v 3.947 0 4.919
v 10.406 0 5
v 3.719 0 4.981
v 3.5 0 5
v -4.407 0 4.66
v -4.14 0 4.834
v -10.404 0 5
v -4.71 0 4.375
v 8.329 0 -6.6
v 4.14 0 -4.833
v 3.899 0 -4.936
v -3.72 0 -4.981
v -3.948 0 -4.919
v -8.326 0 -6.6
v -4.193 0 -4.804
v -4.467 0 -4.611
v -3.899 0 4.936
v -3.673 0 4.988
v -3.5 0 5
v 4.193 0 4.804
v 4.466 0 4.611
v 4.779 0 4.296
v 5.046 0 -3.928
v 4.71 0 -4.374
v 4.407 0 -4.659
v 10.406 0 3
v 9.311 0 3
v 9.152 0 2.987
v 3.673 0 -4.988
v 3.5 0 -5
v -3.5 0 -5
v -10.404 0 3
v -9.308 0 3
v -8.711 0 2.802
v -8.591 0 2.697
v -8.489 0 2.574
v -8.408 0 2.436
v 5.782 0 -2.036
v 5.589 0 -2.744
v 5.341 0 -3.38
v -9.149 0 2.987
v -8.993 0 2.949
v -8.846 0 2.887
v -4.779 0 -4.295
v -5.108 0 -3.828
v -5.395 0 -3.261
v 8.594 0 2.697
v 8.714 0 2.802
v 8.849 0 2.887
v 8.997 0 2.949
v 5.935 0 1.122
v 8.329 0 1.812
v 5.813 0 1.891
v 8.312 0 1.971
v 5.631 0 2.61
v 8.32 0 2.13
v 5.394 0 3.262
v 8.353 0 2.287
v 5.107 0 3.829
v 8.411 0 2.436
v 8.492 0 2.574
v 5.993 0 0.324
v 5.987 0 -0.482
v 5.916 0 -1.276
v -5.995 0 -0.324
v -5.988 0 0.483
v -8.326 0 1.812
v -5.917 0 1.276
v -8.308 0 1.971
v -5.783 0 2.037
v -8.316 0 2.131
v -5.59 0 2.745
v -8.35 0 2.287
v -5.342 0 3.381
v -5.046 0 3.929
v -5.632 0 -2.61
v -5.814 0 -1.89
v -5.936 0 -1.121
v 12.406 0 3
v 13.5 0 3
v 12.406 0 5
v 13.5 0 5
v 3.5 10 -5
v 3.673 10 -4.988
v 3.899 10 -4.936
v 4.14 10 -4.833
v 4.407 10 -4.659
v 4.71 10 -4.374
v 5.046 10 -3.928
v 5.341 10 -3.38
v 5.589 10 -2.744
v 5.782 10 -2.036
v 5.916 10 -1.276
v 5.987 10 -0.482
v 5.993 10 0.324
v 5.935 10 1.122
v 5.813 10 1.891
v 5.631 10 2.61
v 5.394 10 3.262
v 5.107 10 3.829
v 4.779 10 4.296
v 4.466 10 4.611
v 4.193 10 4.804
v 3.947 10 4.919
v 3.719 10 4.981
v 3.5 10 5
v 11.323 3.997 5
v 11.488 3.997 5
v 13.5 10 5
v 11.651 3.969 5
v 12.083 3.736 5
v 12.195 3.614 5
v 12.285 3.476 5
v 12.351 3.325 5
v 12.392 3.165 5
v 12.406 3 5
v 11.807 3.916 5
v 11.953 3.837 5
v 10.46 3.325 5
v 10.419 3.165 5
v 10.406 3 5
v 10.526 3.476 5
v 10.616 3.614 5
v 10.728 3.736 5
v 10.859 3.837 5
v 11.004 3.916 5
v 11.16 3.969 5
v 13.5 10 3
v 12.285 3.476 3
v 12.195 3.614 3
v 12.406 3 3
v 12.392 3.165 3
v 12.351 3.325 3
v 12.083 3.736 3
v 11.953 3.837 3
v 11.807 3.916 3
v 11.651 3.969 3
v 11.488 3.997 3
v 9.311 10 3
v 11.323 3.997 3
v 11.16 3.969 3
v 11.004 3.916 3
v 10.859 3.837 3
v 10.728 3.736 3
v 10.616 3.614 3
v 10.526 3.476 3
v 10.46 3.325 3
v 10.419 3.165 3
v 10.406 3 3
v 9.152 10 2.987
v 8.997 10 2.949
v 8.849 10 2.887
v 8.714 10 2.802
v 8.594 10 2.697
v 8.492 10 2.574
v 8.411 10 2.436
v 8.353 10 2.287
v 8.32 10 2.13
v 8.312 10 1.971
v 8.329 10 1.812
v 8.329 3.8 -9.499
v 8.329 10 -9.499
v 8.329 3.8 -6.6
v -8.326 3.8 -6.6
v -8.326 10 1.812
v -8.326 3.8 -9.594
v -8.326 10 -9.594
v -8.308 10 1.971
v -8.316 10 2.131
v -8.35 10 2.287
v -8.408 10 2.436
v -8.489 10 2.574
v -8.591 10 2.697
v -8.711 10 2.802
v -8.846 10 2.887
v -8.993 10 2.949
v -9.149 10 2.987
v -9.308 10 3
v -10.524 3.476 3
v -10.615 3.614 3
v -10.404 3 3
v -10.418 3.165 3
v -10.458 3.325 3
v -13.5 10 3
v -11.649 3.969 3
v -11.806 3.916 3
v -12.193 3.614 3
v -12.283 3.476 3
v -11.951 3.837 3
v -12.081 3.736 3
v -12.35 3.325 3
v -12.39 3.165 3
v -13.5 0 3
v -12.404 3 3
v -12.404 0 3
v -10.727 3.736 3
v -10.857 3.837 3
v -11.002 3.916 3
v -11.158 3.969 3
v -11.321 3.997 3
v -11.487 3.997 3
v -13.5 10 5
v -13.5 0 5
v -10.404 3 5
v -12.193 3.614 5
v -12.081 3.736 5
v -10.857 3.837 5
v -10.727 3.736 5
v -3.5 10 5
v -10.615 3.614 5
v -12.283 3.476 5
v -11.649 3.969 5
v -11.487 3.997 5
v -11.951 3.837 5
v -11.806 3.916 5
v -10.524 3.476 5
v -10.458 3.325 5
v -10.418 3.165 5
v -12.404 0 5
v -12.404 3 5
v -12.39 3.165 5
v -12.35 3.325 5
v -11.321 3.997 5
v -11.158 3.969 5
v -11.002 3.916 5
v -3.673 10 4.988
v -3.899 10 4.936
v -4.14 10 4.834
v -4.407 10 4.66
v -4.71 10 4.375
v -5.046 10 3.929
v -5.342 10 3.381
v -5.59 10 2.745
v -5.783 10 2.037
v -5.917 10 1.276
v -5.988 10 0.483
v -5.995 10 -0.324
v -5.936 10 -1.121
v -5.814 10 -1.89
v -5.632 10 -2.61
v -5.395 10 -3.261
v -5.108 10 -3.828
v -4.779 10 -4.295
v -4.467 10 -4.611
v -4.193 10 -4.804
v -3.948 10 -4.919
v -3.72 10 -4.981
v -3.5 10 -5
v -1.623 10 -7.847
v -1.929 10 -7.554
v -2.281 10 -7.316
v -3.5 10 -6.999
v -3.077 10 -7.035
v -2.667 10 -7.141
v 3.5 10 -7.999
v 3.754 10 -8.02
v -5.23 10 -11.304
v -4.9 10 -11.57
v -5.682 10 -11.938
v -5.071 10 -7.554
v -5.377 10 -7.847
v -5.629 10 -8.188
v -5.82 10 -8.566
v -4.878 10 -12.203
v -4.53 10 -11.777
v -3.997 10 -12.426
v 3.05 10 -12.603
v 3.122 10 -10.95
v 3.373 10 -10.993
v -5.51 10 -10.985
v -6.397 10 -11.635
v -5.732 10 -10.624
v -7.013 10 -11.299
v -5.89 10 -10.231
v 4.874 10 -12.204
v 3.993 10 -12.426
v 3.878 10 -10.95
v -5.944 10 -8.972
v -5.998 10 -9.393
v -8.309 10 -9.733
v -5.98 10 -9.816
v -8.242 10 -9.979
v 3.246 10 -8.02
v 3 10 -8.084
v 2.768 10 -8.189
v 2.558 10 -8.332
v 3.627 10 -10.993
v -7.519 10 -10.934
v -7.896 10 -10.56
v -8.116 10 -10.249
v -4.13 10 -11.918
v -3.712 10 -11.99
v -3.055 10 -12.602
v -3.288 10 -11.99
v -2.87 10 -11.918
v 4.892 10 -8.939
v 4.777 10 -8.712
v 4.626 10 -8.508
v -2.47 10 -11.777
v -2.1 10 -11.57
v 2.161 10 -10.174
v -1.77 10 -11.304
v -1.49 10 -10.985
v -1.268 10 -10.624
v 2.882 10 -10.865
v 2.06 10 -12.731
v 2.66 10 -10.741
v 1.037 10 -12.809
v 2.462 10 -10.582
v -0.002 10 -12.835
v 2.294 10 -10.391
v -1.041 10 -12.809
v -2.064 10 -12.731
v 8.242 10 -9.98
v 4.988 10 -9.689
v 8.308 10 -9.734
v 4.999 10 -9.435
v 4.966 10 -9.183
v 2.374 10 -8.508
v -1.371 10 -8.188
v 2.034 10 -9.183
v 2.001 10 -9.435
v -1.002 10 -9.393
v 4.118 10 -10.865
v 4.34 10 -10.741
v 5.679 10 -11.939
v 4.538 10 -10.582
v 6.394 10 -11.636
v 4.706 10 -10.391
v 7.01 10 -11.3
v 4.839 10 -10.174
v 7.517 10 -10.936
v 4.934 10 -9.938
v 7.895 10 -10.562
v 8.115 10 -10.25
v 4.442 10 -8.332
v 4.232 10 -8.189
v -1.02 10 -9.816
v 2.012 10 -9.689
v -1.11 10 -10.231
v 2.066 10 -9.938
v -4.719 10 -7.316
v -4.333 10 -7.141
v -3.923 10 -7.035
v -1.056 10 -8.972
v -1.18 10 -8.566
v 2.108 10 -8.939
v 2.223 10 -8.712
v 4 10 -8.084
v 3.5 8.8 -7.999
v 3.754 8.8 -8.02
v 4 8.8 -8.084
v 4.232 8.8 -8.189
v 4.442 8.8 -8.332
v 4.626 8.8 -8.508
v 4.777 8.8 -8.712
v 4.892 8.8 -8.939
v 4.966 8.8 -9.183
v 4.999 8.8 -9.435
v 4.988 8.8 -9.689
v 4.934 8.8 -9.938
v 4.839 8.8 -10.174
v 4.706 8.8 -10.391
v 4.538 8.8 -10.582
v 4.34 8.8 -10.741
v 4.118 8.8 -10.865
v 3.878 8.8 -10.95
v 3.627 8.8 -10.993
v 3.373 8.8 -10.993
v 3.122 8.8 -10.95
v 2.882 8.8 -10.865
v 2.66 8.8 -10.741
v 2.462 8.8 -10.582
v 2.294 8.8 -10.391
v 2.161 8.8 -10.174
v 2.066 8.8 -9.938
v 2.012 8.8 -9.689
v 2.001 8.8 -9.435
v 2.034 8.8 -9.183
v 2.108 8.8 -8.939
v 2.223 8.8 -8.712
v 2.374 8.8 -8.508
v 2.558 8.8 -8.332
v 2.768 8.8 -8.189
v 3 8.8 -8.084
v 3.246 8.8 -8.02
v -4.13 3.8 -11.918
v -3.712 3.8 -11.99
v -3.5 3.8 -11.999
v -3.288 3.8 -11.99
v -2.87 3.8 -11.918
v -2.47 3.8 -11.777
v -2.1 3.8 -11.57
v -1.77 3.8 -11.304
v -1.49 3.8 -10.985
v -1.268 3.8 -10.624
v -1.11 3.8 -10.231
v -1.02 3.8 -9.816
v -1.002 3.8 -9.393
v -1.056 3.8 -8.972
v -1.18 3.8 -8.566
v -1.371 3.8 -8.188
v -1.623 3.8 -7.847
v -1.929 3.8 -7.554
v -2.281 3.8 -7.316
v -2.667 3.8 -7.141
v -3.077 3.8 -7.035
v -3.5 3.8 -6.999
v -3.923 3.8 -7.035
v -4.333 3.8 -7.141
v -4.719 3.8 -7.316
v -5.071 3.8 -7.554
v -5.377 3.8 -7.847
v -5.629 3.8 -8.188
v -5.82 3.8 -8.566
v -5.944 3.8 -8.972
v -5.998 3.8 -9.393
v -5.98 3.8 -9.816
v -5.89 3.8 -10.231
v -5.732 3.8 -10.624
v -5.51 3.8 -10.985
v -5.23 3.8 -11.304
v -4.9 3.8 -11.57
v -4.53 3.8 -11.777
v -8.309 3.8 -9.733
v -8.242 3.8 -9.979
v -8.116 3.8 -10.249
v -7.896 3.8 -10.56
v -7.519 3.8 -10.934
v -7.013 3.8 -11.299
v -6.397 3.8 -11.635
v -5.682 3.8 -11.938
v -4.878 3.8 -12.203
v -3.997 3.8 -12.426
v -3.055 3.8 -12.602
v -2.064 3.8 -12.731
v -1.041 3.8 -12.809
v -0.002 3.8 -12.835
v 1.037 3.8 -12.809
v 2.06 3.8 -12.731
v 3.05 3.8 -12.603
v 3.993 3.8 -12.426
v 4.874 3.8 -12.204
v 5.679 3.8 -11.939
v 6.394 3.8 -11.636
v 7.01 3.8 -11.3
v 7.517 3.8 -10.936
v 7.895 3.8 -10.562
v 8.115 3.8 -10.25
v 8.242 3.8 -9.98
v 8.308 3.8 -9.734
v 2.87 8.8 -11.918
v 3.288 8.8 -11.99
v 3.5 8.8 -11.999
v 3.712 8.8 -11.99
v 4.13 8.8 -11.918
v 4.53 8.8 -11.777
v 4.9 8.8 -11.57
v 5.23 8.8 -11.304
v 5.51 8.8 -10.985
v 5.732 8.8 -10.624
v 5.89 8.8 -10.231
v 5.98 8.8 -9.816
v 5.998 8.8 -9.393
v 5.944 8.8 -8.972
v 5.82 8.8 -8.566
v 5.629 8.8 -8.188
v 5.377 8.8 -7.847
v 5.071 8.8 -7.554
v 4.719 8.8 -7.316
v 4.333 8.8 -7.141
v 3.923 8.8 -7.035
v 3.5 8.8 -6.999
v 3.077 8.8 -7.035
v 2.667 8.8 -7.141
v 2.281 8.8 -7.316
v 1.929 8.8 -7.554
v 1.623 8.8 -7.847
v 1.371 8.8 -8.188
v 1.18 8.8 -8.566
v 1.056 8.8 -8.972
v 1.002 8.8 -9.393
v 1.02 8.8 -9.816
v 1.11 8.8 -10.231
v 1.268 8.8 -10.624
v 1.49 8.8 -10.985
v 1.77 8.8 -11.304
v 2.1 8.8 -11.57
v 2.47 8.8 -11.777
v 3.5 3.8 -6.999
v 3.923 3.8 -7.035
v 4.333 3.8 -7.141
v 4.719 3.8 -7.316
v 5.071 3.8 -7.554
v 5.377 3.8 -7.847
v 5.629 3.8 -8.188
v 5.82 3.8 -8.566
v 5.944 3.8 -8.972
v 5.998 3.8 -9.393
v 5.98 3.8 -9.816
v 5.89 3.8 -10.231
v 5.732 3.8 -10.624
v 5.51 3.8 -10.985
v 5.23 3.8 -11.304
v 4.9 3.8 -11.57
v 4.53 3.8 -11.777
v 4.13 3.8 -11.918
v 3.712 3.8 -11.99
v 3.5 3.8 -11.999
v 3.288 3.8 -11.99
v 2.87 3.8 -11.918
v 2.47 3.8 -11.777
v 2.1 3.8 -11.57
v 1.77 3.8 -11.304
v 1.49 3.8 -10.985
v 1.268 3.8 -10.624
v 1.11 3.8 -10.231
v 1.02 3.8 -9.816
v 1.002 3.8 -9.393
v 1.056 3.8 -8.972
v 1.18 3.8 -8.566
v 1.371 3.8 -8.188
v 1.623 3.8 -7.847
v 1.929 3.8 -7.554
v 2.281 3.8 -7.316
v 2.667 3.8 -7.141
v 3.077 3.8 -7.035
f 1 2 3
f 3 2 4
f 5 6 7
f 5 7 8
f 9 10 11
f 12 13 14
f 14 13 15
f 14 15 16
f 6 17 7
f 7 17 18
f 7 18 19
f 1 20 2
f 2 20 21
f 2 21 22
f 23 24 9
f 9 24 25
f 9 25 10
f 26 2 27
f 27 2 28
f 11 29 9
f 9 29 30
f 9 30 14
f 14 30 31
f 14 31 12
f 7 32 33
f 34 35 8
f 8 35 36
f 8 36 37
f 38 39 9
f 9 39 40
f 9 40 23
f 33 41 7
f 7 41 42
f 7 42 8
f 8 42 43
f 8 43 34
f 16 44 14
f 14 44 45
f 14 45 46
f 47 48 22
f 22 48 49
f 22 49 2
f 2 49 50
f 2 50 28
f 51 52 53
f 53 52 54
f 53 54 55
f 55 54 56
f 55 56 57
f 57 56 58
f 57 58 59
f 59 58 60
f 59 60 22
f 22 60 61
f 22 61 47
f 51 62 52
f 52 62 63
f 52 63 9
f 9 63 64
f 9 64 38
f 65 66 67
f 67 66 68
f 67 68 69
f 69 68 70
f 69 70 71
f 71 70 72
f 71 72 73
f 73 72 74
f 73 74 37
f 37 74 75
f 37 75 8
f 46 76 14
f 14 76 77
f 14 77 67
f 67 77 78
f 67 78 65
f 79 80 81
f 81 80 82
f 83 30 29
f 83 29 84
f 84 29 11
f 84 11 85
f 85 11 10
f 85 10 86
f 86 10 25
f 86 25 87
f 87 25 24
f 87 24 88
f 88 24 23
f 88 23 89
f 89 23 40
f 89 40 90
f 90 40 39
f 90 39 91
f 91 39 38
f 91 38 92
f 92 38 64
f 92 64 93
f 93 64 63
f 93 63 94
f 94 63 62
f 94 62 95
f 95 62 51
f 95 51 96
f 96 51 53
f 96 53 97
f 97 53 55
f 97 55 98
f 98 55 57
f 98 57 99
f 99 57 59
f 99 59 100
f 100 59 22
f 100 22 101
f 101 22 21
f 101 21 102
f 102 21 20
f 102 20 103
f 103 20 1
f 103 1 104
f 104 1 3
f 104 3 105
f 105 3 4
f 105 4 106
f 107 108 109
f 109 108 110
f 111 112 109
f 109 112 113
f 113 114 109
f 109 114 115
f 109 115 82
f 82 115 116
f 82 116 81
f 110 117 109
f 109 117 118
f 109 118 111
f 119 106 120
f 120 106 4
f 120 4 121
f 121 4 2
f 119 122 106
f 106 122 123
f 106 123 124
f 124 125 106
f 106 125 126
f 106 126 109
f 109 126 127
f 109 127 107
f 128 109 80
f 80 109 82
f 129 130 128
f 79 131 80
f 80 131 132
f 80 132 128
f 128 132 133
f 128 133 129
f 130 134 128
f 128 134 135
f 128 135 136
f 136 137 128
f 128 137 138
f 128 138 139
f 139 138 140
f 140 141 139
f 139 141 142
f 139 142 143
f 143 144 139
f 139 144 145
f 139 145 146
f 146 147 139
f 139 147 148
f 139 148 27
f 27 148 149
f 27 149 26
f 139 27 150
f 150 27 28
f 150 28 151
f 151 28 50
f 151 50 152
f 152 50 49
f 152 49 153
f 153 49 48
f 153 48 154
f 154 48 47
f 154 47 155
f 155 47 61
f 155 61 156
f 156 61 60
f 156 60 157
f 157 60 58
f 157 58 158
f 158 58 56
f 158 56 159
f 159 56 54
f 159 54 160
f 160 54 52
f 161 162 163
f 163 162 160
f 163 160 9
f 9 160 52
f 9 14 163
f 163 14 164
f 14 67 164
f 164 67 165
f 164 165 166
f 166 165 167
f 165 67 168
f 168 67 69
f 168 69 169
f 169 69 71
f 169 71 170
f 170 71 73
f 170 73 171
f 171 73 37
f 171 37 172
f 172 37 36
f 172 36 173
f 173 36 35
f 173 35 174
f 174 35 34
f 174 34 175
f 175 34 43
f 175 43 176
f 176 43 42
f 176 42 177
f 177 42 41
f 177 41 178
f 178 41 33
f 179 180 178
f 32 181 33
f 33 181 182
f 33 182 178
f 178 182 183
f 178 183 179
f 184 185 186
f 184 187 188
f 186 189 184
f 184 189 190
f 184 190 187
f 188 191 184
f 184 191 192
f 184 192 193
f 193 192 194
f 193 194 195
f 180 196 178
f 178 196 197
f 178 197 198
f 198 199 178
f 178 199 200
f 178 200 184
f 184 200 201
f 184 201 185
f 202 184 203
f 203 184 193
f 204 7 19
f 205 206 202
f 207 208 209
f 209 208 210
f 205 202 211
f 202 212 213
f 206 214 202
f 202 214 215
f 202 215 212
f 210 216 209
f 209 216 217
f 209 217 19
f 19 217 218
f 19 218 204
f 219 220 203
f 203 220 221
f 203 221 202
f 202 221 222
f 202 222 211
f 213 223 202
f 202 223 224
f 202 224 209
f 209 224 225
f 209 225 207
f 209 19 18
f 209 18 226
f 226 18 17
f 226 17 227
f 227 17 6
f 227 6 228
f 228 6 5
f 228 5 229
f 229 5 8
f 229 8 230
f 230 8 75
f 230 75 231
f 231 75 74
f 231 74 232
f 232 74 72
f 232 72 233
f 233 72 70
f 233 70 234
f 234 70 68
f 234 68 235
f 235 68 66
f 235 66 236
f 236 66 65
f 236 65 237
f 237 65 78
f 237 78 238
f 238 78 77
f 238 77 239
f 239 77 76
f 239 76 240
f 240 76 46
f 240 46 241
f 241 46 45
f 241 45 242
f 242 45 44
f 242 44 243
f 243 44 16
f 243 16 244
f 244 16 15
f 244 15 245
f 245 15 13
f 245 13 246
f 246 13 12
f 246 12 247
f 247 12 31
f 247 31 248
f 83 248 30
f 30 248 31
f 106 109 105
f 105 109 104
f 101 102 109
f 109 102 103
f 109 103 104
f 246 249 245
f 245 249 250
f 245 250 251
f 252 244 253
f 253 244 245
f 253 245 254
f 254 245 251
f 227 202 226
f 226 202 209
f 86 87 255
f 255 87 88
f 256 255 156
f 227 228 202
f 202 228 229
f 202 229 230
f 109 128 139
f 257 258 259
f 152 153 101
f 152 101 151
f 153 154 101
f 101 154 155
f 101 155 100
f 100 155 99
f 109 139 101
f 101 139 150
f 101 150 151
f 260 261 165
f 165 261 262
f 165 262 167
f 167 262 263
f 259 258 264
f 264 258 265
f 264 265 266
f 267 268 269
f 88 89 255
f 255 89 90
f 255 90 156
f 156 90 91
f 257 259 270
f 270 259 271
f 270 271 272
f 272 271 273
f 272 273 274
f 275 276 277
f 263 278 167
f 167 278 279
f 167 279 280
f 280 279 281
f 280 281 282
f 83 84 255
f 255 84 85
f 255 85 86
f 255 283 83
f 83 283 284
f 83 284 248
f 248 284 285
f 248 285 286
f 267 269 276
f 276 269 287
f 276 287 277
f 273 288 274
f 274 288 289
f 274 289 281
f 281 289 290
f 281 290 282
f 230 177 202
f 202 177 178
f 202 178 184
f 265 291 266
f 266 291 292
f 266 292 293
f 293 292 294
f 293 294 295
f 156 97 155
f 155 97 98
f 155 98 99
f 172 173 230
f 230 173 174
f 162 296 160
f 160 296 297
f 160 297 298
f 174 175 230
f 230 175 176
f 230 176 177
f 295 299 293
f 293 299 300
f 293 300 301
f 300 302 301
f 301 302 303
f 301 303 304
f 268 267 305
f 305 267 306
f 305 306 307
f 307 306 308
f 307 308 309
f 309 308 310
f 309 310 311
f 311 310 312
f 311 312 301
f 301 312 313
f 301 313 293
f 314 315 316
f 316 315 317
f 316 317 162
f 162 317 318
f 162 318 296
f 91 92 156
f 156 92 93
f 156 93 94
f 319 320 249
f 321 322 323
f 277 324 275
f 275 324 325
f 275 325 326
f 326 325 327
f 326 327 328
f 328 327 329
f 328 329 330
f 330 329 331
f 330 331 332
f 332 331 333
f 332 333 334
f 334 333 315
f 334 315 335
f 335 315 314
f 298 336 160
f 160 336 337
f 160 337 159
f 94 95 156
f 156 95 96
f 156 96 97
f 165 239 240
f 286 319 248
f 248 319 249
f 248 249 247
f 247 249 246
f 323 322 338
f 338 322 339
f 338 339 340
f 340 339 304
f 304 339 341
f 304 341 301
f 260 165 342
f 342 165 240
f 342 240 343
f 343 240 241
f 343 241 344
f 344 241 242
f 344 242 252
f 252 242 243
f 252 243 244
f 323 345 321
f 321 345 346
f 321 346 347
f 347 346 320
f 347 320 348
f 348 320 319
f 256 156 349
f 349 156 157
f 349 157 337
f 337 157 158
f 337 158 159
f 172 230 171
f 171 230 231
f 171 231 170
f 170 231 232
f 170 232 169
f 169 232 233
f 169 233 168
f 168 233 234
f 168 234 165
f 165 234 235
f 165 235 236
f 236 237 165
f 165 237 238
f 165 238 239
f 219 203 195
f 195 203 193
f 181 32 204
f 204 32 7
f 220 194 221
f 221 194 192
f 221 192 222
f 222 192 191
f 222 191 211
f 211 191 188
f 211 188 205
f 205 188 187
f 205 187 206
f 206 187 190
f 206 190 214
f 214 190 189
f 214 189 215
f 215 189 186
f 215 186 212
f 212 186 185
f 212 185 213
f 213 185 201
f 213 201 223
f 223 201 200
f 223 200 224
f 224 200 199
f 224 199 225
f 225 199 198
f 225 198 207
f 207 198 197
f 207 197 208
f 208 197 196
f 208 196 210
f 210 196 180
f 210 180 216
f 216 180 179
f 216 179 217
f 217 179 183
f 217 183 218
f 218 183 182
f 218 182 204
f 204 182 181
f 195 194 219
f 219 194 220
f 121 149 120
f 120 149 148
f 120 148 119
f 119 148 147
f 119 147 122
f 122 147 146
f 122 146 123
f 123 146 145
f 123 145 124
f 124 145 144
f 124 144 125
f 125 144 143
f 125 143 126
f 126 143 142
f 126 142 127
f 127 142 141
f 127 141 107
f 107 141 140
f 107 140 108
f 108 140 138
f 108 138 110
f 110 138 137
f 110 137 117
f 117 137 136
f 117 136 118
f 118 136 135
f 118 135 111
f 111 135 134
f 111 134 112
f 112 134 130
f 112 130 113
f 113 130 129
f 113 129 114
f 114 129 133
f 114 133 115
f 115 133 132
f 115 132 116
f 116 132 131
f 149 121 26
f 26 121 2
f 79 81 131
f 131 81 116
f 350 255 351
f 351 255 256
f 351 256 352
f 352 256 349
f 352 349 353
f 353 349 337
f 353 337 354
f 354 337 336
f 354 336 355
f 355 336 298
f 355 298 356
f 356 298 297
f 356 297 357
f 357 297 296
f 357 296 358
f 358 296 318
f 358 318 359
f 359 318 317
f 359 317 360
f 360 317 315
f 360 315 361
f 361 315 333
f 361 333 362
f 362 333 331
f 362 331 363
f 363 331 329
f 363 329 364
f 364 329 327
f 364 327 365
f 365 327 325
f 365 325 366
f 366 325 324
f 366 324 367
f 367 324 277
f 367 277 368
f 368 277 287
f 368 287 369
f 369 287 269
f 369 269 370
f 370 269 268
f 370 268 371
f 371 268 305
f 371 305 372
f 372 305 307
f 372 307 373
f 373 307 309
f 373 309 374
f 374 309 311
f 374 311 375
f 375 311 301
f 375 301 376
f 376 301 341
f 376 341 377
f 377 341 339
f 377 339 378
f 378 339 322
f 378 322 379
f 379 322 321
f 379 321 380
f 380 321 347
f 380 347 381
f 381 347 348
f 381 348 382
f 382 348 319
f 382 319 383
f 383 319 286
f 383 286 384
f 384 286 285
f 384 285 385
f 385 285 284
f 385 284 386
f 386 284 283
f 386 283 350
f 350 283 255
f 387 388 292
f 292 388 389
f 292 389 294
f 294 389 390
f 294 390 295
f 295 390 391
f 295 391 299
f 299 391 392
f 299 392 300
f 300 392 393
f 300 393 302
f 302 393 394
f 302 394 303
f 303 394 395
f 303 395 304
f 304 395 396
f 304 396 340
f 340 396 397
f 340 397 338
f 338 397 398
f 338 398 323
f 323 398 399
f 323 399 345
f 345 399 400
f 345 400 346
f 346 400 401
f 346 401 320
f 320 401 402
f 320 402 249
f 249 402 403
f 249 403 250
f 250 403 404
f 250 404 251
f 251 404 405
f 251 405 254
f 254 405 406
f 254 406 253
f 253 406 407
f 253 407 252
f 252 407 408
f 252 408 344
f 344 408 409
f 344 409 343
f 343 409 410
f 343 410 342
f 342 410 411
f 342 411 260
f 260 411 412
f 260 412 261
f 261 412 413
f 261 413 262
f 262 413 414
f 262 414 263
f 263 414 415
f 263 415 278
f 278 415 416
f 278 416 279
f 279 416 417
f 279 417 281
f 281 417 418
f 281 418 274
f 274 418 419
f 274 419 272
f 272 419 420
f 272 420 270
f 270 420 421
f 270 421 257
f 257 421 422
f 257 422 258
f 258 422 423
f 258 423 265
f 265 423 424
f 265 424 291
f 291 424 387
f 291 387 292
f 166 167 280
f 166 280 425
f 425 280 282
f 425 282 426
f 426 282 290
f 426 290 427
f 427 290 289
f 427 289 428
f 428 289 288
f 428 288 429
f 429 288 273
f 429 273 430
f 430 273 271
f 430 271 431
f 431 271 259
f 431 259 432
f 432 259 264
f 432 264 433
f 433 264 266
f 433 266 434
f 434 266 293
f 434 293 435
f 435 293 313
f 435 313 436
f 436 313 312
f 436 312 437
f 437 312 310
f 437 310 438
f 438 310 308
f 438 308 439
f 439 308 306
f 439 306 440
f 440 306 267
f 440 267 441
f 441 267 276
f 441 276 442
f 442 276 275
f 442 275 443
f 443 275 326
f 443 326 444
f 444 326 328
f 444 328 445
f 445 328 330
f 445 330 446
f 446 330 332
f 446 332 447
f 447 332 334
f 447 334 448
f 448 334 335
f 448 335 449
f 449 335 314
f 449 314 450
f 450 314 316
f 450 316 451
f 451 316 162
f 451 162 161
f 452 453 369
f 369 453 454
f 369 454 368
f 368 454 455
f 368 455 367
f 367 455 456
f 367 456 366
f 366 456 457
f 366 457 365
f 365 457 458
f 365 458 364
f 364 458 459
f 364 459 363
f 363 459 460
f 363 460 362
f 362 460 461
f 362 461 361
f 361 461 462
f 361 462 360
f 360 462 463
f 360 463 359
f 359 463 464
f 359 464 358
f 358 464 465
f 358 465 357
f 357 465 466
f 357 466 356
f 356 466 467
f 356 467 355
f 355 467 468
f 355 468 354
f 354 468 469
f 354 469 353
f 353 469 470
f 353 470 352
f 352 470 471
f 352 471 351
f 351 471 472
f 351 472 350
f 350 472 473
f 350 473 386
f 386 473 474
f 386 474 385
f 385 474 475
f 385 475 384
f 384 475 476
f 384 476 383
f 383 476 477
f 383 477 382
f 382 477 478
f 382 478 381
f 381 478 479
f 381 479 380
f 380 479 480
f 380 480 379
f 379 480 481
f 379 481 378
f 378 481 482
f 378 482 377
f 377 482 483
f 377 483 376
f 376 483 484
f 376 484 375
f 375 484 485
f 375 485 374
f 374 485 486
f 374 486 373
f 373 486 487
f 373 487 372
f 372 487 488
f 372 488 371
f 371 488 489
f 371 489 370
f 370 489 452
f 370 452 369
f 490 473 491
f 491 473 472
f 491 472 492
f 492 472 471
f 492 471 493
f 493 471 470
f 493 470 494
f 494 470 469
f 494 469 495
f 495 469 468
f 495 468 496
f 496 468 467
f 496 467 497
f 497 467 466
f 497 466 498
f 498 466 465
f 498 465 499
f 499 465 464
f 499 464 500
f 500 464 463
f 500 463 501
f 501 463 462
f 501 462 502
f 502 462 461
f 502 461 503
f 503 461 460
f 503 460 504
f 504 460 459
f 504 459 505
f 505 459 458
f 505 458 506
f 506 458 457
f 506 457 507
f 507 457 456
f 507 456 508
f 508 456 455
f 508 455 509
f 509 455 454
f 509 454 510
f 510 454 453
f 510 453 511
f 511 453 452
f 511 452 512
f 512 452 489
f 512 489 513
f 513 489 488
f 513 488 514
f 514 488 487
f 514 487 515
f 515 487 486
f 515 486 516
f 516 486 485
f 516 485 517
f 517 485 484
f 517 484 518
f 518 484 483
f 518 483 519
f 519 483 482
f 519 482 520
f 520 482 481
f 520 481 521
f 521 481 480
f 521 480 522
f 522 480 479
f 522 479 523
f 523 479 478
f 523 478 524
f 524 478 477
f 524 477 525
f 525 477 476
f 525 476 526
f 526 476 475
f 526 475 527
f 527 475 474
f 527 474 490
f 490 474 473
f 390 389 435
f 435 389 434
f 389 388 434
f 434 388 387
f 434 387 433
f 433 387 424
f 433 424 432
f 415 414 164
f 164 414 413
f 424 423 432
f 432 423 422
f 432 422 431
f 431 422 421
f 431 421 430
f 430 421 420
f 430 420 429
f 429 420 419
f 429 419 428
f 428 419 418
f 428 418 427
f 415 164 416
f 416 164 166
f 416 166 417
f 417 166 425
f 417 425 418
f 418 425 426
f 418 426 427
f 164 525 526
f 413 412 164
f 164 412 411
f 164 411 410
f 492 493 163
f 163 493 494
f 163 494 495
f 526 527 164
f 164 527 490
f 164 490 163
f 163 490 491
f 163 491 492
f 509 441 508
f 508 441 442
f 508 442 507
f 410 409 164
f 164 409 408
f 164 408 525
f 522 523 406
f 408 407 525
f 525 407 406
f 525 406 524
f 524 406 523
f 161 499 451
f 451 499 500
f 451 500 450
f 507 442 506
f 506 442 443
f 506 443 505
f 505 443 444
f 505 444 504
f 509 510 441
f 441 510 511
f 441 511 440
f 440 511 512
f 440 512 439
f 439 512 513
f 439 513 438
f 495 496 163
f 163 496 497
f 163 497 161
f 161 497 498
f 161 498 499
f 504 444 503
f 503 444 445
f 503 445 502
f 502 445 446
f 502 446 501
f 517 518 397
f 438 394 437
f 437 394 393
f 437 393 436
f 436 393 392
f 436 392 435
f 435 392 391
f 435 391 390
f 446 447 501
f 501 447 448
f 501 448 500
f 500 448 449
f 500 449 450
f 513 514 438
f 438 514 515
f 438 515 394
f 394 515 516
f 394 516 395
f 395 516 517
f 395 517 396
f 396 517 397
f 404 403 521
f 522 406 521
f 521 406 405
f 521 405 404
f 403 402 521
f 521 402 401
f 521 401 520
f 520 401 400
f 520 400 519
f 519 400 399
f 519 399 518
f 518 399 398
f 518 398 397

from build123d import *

# Parameters (mm, degrees)
BOSS_EXTRUDE1_DEPTH = 10
CUT_EXTRUDE1_DEPTH  = 10
SKETCH3_R           = 2.5
SKETCH3_R_2         = 1.5
BOSS_EXTRUDE2_DEPTH = 1.2
SKETCH4_R           = 2.5
BOSS_EXTRUDE3_DEPTH = 5


with BuildPart() as part:
    # Sketch1 → Boss-Extrude1 (new body)
    with BuildSketch(Plane(origin=(0, 0, 0), x_dir=(1, 0, 0), z_dir=(0, 1, 0))):
        with BuildLine():
            Line((-3.5, -5), (-13.5, -5))
            Line((-13.5, -5), (-13.5, -3))
            Line((-13.5, -3), (-9.307862042, -3))
            ThreePointArc((-9.307862042, -3), (-8.53716607, -2.637203044), (-8.325682404, -1.812055437))
            Line((-8.325682404, -1.812055437), (-8.325682404, 6.6))
            Line((-8.325682404, 6.6), (8.329091265, 6.6))
            Line((8.329091265, 6.6), (8.329091265, -1.811940526))
            ThreePointArc((8.329091265, -1.811940526), (8.540515661, -2.637157958), (9.311248907, -3))
            Line((9.311248907, -3), (13.5, -3))
            Line((13.5, -3), (13.5, -5))
            Line((13.5, -5), (3.5, -5))
            add(Edge.make_bspline(
                [(3.5, -5), (5.998694825, -5), (5.998694825, 0), (5.998694825, 5), (3.5, 5)],
                knots=[3.141592654, 3.141592654, 3.141592654, 4.71238898, 4.71238898, 6.283185307, 6.283185307, 6.283185307], degree=2, weights=[1, 0.707106781, 1, 0.707106781, 1]))
            Line((3.5, 5), (-3.5, 5))
            add(Edge.make_bspline(
                [(-3.5, 5), (-5.999755012, 5), (-5.999755012, 0), (-5.999755012, -5), (-3.5, -5)],
                knots=[0, 0, 0, 1.570796327, 1.570796327, 3.141592654, 3.141592654, 3.141592654], degree=2, weights=[1, 0.707106781, 1, 0.707106781, 1]))
        make_face()
    extrude(amount=BOSS_EXTRUDE1_DEPTH)

    # Sketch2 → Cut-Extrude1 (cut)
    with BuildSketch(Plane(origin=(0, 0, 3), x_dir=(-1, 0, 0), z_dir=(0, 0, -1))):
        with BuildLine():
            Line((10.403931021, 0), (12.403931021, 0))
            Line((12.403931021, 0), (12.403931021, 3))
            ThreePointArc((12.403931021, 3), (11.403931021, 4), (10.403931021, 3))
            Line((10.403931021, 3), (10.403931021, 0))
        make_face()
        with BuildLine():
            Line((-12.405624454, 0), (-10.405624454, 0))
            Line((-10.405624454, 0), (-10.405624454, 3))
            ThreePointArc((-10.405624454, 3), (-11.405624454, 4), (-12.405624454, 3))
            Line((-12.405624454, 3), (-12.405624454, 0))
        make_face()
    extrude(amount=-CUT_EXTRUDE1_DEPTH, mode=Mode.SUBTRACT)

    # Sketch3 → Boss-Extrude2 (add)
    with BuildSketch(Plane(origin=(0, 10, 0), x_dir=(1, 0, 0), z_dir=(0, 1, 0))):
        with BuildLine():
            Line((-8.325682404, 6.6), (8.329091265, 6.6))
            Line((8.329091265, 6.6), (8.329091265, 9.498637931))
            add(Edge.make_bspline(
                [(8.329091265, 9.498637931), (8.329091265, 12.787490374), (0.119148459, 12.834537728), (-8.090794347, 12.881585081), (-8.325682404, 9.594078672)],
                knots=[0, 0, 0, 1.556490742, 1.556490742, 3.112981484, 3.112981484, 3.112981484], degree=2, weights=[1, 0.712146438, 1, 0.712146438, 1]))
            Line((-8.325682404, 9.594078672), (-8.325682404, 6.6))
        make_face()
        with Locations(Location((-3.5, 9.498637931, 0), (0, 0, 270))):
            Circle(SKETCH3_R, mode=Mode.SUBTRACT)
        with Locations(Location((3.5, 9.498637931, 0), (0, 0, 270))):
            Circle(SKETCH3_R_2, mode=Mode.SUBTRACT)
    extrude(amount=-BOSS_EXTRUDE2_DEPTH)

    # Sketch4 → Boss-Extrude3 (add)
    with BuildSketch(Plane.XZ.offset(-8.8)):
        with BuildLine():
            Line((8.329091265, -6.6), (-8.325682404, -6.6))
            Line((-8.325682404, -6.6), (-8.325682404, -9.40319719))
            Line((-8.325682404, -9.40319719), (-8.325682404, -9.594078672))
            add(Edge.make_bspline(
                [(-8.325682404, -9.594078672), (-8.097422437, -12.78881796), (-0.119148459, -12.834537728), (8.329091265, -12.88295065), (8.329091265, -9.498637931)],
                knots=[3.175928112, 3.175928112, 3.175928112, 4.698083395, 4.698083395, 6.283185307, 6.283185307, 6.283185307], degree=2, weights=[0.977274251, 0.713863718, 1, 0.702030948, 1]))
            Line((8.329091265, -9.498637931), (8.329091265, -6.6))
        make_face()
        with Locations(Location((-3.5, -9.498637931, 0), (0, 0, 90))):
            Circle(SKETCH4_R, mode=Mode.SUBTRACT)
        with Locations(Location((3.5, -9.498637931, 0), (0, 0, 270))):
            Circle(SKETCH4_R, mode=Mode.SUBTRACT)
    extrude(amount=BOSS_EXTRUDE3_DEPTH)


solid = part.part
